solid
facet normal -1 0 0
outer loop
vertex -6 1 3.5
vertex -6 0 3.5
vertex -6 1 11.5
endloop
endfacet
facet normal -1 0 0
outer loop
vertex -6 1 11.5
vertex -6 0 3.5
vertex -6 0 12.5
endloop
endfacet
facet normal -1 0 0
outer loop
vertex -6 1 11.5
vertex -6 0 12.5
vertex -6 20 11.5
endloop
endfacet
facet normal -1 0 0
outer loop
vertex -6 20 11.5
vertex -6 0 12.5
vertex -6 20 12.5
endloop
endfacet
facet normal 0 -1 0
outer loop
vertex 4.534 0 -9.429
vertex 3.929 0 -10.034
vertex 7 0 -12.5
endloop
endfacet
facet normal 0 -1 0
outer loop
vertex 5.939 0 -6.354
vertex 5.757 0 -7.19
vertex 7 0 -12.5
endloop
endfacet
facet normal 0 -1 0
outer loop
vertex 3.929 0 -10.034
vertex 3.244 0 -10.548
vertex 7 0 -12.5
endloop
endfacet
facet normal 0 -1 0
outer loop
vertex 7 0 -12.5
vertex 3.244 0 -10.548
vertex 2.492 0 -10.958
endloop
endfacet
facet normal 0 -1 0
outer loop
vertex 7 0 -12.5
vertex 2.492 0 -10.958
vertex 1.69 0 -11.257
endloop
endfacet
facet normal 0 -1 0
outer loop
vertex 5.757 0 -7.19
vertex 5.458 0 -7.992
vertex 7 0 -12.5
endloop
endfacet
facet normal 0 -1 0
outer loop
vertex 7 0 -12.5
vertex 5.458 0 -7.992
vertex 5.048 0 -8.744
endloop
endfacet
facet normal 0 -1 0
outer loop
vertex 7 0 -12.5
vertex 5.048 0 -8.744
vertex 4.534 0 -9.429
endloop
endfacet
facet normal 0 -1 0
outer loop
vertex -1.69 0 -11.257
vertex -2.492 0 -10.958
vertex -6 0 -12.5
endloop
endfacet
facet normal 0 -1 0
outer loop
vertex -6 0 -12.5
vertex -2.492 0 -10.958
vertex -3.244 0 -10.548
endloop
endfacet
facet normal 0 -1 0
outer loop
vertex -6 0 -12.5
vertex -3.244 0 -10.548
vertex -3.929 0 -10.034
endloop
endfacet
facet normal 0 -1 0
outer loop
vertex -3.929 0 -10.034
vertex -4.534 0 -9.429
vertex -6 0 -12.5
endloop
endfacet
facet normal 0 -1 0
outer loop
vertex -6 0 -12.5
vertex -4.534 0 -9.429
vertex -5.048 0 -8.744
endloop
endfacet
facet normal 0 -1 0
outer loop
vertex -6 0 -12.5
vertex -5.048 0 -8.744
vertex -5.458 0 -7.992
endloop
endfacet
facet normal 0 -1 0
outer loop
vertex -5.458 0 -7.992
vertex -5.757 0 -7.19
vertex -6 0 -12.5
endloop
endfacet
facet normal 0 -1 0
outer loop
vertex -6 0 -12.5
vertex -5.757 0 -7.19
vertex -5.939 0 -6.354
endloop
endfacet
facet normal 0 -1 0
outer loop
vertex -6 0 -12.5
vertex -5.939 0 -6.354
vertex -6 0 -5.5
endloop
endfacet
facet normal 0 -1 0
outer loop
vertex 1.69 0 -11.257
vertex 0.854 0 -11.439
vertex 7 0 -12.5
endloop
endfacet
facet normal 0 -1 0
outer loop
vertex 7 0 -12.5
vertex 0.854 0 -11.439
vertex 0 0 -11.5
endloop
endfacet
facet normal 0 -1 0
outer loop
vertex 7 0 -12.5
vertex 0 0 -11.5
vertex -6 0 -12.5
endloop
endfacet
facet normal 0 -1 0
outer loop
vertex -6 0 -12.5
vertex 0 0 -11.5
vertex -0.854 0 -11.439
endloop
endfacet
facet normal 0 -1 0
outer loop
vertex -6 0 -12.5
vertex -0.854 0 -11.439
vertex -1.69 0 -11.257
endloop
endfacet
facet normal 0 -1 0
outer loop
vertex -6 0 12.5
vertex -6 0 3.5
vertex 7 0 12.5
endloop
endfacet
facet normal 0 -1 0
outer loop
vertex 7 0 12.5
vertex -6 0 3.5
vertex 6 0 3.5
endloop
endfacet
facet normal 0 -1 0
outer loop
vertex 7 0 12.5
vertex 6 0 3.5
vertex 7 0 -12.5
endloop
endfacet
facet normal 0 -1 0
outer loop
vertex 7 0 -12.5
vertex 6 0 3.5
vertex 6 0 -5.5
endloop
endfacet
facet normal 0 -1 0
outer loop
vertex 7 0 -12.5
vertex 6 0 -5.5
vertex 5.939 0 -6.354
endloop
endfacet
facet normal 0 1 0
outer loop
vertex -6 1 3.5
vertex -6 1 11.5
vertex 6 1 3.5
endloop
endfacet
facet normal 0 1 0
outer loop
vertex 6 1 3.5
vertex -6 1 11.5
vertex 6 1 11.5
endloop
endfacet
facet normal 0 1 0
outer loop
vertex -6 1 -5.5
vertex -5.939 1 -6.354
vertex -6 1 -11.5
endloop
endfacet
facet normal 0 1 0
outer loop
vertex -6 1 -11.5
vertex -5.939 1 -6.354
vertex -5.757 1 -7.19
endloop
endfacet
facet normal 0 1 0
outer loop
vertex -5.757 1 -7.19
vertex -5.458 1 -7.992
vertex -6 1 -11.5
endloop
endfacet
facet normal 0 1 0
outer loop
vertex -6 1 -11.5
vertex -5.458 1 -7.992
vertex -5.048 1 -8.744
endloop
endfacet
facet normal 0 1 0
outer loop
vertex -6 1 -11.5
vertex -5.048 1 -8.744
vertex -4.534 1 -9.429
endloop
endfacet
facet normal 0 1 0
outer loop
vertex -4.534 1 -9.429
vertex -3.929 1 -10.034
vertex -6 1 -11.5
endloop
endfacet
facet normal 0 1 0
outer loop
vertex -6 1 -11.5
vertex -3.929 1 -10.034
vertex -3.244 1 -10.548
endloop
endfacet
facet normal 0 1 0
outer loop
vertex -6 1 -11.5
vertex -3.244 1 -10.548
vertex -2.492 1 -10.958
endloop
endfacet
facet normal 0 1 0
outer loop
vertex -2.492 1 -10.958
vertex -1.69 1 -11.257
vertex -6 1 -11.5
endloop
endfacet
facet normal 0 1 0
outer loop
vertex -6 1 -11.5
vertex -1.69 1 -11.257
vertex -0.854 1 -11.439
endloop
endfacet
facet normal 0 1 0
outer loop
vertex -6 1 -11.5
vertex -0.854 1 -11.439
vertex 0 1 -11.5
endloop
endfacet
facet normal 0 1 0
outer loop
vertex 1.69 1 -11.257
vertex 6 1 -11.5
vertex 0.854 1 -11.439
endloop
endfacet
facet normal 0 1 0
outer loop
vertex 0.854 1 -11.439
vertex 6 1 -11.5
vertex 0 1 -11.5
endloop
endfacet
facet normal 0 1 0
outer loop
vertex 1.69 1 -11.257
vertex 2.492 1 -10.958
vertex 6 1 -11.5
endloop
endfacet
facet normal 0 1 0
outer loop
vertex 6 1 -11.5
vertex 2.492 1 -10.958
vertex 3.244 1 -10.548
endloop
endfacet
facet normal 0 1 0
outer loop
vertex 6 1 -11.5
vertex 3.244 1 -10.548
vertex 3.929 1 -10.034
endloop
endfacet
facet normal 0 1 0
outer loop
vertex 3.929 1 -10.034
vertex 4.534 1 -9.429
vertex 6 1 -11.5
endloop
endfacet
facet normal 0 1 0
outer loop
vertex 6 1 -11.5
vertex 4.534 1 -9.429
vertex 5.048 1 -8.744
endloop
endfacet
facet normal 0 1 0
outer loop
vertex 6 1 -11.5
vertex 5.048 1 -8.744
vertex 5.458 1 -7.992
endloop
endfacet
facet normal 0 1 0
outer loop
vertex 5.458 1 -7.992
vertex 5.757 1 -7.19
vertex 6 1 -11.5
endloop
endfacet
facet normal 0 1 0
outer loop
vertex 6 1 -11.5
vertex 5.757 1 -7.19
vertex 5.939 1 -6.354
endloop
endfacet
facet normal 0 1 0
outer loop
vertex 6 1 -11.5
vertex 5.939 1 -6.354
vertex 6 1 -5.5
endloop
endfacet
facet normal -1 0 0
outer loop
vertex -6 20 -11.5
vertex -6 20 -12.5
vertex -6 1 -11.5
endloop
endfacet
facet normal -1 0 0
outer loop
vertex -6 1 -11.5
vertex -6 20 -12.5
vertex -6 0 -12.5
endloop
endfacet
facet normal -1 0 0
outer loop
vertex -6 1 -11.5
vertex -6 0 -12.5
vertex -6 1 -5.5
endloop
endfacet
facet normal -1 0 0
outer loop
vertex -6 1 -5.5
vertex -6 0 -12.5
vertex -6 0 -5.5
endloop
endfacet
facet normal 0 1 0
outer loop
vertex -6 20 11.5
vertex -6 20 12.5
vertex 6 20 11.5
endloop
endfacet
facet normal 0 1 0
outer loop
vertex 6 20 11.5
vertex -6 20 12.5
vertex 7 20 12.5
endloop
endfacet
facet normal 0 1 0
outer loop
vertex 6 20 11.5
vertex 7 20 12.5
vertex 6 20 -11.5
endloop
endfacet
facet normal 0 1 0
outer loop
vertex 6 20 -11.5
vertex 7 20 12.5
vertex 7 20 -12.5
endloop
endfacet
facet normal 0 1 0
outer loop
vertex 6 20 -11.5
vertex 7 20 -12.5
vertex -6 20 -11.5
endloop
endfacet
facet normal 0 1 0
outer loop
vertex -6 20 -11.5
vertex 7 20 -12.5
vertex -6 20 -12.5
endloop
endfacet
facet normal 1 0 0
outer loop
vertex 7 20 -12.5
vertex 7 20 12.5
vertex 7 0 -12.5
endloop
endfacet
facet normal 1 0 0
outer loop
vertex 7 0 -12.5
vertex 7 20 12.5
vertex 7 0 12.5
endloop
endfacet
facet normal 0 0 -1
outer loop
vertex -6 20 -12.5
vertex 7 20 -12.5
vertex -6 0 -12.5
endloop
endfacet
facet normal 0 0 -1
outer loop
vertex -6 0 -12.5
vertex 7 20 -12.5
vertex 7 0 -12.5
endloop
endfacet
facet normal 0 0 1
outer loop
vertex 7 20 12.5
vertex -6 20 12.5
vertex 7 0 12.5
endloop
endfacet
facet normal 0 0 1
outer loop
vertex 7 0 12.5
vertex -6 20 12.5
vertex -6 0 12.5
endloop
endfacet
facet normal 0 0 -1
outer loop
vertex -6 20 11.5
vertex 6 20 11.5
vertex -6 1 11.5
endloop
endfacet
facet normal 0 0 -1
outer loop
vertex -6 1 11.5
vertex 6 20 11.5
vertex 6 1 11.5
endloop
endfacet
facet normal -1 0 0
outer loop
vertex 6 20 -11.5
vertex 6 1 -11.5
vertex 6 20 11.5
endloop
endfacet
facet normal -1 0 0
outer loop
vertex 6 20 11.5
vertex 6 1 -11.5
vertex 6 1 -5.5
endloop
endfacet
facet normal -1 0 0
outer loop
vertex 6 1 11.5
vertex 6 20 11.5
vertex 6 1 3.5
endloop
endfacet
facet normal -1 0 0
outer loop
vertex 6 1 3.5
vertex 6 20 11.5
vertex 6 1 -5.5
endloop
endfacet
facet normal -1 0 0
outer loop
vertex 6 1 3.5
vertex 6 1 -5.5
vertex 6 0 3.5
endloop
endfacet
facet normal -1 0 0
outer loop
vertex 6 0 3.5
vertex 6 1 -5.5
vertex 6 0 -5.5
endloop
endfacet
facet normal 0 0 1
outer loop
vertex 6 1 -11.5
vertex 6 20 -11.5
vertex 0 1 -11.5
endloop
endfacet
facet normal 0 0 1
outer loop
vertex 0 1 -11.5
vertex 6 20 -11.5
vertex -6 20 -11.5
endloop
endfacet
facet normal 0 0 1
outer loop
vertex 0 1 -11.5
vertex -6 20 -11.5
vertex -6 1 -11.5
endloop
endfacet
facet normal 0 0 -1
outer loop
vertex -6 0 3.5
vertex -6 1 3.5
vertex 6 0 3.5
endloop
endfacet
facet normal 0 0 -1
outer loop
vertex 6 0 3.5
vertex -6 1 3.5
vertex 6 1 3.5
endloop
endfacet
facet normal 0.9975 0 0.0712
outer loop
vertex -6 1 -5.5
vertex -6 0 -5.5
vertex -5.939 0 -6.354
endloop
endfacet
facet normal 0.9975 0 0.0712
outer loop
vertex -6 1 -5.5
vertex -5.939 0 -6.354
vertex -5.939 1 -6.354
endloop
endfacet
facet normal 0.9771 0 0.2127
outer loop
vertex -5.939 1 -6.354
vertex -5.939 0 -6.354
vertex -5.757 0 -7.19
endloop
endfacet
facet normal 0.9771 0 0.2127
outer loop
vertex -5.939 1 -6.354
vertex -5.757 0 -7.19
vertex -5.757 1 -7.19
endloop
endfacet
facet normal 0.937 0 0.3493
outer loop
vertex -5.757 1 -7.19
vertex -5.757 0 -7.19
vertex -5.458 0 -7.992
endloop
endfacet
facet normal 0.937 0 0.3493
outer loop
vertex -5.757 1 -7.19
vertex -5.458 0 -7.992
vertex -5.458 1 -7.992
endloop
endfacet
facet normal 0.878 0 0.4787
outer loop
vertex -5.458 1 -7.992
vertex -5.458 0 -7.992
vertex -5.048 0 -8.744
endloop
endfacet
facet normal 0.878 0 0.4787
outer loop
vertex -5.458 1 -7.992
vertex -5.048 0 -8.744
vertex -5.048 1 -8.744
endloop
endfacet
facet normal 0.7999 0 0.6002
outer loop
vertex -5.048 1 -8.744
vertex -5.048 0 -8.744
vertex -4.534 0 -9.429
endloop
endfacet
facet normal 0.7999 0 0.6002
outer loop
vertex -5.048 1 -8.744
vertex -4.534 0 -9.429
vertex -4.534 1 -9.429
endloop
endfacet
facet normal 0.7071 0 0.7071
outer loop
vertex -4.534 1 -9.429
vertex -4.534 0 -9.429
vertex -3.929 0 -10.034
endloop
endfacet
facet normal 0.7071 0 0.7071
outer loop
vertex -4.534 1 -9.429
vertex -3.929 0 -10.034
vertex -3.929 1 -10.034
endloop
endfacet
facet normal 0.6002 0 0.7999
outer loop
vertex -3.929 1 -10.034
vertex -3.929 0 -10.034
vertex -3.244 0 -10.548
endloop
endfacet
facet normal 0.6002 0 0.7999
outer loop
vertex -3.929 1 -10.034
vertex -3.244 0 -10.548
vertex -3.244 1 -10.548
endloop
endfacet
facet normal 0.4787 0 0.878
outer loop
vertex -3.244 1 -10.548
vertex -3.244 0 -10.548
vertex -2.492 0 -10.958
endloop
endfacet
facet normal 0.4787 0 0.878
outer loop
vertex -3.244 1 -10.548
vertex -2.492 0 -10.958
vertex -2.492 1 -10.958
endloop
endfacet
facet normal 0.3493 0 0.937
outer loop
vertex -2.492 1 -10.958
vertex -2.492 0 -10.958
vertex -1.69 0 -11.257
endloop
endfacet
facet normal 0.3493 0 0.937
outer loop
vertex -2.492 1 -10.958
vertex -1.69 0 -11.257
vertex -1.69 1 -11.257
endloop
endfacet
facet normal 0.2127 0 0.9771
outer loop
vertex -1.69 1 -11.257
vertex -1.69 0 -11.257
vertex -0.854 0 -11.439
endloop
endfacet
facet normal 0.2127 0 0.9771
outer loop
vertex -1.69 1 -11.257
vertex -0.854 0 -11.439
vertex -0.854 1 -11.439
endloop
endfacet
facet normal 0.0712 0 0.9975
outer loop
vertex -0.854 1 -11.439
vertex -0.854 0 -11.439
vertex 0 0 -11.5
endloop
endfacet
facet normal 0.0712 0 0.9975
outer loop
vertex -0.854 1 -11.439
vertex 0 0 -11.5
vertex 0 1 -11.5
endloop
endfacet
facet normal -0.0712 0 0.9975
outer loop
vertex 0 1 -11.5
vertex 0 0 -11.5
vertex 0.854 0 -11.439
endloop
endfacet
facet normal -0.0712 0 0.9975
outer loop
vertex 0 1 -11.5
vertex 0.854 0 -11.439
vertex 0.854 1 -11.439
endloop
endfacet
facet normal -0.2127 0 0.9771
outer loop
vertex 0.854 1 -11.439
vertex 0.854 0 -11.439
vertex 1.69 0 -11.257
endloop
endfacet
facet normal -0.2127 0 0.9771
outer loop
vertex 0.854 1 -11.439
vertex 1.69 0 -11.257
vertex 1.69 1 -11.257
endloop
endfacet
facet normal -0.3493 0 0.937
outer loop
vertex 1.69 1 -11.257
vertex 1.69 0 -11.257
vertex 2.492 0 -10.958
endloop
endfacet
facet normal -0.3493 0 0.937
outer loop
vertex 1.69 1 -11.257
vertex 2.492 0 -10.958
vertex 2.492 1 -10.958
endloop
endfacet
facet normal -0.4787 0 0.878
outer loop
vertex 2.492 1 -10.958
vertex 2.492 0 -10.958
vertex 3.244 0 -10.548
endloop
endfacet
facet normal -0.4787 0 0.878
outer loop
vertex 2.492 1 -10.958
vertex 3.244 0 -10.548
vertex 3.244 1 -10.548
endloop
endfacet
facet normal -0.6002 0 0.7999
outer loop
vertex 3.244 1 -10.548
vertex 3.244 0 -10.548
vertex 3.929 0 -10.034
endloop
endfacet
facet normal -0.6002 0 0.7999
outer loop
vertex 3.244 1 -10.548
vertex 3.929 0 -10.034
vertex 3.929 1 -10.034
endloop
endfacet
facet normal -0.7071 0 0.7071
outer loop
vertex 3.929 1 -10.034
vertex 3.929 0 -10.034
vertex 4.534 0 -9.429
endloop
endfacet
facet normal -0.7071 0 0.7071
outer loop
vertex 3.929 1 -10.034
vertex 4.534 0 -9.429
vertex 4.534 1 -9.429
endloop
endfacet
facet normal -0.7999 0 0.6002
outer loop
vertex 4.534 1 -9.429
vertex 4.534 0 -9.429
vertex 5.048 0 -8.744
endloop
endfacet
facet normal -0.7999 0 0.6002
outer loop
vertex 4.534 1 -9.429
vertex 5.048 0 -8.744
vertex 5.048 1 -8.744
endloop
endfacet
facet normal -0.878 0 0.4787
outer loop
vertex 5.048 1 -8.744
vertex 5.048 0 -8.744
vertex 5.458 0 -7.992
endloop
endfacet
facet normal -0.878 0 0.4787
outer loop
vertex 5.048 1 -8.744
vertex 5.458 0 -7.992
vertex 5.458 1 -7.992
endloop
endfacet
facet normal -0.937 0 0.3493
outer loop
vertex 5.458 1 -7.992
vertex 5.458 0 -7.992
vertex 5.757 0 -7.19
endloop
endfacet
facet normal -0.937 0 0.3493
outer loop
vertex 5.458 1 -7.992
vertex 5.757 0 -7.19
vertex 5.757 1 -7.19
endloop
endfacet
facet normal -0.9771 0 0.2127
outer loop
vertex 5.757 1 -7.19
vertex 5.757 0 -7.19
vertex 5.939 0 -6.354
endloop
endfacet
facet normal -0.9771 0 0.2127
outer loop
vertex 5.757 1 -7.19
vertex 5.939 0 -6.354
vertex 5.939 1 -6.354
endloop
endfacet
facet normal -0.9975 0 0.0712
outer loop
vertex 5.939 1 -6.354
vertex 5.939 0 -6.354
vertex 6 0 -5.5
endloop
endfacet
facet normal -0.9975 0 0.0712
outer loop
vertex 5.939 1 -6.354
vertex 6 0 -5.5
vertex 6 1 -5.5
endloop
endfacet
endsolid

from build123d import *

# Parameters (mm, degrees)
SKETCH_15_W          = 13
SKETCH_15_H          = 25
EXTRUDE_4_DEPTH      = 20
CUT_EXTRUDE_START    = 1
SKETCH_16_W          = 12
SKETCH_16_H          = 23
CUT_EXTRUDE_47_DEPTH = 24.6018292
CUT_EXTRUDE_48_DEPTH = 25.6018292


with BuildPart() as part:
    # 스케치15 → 보스-돌출4 (new body)
    with BuildSketch(Plane(origin=(0, 0, 0), x_dir=(1, 0, 0), z_dir=(0, 1, 0))):
        with Locations((0.5, 0)):
            Rectangle(SKETCH_15_W, SKETCH_15_H)
    extrude(amount=EXTRUDE_4_DEPTH)

    # 스케치16 → 컷-돌출47 (cut, through all)
    with BuildSketch(Plane(origin=(0, 0, 0), x_dir=(1, 0, 0), z_dir=(0, 1, 0)).offset(CUT_EXTRUDE_START)):
        Rectangle(SKETCH_16_W, SKETCH_16_H)
    extrude(amount=CUT_EXTRUDE_47_DEPTH, mode=Mode.SUBTRACT)

    # 스케치17 → 컷-돌출48 (cut, through all)
    with BuildSketch(Plane(origin=(0, 0, 0), x_dir=(1, 0, 0), z_dir=(0, 1, 0))):
        with BuildLine():
            Line((-6, -3.5), (6, -3.5))
            Line((6, -3.5), (6, 5.5))
            ThreePointArc((6, 5.5), (0, 11.5), (-6, 5.5))
            Line((-6, 5.5), (-6, -3.5))
        make_face()
    extrude(amount=CUT_EXTRUDE_48_DEPTH, mode=Mode.SUBTRACT)


solid = part.part
